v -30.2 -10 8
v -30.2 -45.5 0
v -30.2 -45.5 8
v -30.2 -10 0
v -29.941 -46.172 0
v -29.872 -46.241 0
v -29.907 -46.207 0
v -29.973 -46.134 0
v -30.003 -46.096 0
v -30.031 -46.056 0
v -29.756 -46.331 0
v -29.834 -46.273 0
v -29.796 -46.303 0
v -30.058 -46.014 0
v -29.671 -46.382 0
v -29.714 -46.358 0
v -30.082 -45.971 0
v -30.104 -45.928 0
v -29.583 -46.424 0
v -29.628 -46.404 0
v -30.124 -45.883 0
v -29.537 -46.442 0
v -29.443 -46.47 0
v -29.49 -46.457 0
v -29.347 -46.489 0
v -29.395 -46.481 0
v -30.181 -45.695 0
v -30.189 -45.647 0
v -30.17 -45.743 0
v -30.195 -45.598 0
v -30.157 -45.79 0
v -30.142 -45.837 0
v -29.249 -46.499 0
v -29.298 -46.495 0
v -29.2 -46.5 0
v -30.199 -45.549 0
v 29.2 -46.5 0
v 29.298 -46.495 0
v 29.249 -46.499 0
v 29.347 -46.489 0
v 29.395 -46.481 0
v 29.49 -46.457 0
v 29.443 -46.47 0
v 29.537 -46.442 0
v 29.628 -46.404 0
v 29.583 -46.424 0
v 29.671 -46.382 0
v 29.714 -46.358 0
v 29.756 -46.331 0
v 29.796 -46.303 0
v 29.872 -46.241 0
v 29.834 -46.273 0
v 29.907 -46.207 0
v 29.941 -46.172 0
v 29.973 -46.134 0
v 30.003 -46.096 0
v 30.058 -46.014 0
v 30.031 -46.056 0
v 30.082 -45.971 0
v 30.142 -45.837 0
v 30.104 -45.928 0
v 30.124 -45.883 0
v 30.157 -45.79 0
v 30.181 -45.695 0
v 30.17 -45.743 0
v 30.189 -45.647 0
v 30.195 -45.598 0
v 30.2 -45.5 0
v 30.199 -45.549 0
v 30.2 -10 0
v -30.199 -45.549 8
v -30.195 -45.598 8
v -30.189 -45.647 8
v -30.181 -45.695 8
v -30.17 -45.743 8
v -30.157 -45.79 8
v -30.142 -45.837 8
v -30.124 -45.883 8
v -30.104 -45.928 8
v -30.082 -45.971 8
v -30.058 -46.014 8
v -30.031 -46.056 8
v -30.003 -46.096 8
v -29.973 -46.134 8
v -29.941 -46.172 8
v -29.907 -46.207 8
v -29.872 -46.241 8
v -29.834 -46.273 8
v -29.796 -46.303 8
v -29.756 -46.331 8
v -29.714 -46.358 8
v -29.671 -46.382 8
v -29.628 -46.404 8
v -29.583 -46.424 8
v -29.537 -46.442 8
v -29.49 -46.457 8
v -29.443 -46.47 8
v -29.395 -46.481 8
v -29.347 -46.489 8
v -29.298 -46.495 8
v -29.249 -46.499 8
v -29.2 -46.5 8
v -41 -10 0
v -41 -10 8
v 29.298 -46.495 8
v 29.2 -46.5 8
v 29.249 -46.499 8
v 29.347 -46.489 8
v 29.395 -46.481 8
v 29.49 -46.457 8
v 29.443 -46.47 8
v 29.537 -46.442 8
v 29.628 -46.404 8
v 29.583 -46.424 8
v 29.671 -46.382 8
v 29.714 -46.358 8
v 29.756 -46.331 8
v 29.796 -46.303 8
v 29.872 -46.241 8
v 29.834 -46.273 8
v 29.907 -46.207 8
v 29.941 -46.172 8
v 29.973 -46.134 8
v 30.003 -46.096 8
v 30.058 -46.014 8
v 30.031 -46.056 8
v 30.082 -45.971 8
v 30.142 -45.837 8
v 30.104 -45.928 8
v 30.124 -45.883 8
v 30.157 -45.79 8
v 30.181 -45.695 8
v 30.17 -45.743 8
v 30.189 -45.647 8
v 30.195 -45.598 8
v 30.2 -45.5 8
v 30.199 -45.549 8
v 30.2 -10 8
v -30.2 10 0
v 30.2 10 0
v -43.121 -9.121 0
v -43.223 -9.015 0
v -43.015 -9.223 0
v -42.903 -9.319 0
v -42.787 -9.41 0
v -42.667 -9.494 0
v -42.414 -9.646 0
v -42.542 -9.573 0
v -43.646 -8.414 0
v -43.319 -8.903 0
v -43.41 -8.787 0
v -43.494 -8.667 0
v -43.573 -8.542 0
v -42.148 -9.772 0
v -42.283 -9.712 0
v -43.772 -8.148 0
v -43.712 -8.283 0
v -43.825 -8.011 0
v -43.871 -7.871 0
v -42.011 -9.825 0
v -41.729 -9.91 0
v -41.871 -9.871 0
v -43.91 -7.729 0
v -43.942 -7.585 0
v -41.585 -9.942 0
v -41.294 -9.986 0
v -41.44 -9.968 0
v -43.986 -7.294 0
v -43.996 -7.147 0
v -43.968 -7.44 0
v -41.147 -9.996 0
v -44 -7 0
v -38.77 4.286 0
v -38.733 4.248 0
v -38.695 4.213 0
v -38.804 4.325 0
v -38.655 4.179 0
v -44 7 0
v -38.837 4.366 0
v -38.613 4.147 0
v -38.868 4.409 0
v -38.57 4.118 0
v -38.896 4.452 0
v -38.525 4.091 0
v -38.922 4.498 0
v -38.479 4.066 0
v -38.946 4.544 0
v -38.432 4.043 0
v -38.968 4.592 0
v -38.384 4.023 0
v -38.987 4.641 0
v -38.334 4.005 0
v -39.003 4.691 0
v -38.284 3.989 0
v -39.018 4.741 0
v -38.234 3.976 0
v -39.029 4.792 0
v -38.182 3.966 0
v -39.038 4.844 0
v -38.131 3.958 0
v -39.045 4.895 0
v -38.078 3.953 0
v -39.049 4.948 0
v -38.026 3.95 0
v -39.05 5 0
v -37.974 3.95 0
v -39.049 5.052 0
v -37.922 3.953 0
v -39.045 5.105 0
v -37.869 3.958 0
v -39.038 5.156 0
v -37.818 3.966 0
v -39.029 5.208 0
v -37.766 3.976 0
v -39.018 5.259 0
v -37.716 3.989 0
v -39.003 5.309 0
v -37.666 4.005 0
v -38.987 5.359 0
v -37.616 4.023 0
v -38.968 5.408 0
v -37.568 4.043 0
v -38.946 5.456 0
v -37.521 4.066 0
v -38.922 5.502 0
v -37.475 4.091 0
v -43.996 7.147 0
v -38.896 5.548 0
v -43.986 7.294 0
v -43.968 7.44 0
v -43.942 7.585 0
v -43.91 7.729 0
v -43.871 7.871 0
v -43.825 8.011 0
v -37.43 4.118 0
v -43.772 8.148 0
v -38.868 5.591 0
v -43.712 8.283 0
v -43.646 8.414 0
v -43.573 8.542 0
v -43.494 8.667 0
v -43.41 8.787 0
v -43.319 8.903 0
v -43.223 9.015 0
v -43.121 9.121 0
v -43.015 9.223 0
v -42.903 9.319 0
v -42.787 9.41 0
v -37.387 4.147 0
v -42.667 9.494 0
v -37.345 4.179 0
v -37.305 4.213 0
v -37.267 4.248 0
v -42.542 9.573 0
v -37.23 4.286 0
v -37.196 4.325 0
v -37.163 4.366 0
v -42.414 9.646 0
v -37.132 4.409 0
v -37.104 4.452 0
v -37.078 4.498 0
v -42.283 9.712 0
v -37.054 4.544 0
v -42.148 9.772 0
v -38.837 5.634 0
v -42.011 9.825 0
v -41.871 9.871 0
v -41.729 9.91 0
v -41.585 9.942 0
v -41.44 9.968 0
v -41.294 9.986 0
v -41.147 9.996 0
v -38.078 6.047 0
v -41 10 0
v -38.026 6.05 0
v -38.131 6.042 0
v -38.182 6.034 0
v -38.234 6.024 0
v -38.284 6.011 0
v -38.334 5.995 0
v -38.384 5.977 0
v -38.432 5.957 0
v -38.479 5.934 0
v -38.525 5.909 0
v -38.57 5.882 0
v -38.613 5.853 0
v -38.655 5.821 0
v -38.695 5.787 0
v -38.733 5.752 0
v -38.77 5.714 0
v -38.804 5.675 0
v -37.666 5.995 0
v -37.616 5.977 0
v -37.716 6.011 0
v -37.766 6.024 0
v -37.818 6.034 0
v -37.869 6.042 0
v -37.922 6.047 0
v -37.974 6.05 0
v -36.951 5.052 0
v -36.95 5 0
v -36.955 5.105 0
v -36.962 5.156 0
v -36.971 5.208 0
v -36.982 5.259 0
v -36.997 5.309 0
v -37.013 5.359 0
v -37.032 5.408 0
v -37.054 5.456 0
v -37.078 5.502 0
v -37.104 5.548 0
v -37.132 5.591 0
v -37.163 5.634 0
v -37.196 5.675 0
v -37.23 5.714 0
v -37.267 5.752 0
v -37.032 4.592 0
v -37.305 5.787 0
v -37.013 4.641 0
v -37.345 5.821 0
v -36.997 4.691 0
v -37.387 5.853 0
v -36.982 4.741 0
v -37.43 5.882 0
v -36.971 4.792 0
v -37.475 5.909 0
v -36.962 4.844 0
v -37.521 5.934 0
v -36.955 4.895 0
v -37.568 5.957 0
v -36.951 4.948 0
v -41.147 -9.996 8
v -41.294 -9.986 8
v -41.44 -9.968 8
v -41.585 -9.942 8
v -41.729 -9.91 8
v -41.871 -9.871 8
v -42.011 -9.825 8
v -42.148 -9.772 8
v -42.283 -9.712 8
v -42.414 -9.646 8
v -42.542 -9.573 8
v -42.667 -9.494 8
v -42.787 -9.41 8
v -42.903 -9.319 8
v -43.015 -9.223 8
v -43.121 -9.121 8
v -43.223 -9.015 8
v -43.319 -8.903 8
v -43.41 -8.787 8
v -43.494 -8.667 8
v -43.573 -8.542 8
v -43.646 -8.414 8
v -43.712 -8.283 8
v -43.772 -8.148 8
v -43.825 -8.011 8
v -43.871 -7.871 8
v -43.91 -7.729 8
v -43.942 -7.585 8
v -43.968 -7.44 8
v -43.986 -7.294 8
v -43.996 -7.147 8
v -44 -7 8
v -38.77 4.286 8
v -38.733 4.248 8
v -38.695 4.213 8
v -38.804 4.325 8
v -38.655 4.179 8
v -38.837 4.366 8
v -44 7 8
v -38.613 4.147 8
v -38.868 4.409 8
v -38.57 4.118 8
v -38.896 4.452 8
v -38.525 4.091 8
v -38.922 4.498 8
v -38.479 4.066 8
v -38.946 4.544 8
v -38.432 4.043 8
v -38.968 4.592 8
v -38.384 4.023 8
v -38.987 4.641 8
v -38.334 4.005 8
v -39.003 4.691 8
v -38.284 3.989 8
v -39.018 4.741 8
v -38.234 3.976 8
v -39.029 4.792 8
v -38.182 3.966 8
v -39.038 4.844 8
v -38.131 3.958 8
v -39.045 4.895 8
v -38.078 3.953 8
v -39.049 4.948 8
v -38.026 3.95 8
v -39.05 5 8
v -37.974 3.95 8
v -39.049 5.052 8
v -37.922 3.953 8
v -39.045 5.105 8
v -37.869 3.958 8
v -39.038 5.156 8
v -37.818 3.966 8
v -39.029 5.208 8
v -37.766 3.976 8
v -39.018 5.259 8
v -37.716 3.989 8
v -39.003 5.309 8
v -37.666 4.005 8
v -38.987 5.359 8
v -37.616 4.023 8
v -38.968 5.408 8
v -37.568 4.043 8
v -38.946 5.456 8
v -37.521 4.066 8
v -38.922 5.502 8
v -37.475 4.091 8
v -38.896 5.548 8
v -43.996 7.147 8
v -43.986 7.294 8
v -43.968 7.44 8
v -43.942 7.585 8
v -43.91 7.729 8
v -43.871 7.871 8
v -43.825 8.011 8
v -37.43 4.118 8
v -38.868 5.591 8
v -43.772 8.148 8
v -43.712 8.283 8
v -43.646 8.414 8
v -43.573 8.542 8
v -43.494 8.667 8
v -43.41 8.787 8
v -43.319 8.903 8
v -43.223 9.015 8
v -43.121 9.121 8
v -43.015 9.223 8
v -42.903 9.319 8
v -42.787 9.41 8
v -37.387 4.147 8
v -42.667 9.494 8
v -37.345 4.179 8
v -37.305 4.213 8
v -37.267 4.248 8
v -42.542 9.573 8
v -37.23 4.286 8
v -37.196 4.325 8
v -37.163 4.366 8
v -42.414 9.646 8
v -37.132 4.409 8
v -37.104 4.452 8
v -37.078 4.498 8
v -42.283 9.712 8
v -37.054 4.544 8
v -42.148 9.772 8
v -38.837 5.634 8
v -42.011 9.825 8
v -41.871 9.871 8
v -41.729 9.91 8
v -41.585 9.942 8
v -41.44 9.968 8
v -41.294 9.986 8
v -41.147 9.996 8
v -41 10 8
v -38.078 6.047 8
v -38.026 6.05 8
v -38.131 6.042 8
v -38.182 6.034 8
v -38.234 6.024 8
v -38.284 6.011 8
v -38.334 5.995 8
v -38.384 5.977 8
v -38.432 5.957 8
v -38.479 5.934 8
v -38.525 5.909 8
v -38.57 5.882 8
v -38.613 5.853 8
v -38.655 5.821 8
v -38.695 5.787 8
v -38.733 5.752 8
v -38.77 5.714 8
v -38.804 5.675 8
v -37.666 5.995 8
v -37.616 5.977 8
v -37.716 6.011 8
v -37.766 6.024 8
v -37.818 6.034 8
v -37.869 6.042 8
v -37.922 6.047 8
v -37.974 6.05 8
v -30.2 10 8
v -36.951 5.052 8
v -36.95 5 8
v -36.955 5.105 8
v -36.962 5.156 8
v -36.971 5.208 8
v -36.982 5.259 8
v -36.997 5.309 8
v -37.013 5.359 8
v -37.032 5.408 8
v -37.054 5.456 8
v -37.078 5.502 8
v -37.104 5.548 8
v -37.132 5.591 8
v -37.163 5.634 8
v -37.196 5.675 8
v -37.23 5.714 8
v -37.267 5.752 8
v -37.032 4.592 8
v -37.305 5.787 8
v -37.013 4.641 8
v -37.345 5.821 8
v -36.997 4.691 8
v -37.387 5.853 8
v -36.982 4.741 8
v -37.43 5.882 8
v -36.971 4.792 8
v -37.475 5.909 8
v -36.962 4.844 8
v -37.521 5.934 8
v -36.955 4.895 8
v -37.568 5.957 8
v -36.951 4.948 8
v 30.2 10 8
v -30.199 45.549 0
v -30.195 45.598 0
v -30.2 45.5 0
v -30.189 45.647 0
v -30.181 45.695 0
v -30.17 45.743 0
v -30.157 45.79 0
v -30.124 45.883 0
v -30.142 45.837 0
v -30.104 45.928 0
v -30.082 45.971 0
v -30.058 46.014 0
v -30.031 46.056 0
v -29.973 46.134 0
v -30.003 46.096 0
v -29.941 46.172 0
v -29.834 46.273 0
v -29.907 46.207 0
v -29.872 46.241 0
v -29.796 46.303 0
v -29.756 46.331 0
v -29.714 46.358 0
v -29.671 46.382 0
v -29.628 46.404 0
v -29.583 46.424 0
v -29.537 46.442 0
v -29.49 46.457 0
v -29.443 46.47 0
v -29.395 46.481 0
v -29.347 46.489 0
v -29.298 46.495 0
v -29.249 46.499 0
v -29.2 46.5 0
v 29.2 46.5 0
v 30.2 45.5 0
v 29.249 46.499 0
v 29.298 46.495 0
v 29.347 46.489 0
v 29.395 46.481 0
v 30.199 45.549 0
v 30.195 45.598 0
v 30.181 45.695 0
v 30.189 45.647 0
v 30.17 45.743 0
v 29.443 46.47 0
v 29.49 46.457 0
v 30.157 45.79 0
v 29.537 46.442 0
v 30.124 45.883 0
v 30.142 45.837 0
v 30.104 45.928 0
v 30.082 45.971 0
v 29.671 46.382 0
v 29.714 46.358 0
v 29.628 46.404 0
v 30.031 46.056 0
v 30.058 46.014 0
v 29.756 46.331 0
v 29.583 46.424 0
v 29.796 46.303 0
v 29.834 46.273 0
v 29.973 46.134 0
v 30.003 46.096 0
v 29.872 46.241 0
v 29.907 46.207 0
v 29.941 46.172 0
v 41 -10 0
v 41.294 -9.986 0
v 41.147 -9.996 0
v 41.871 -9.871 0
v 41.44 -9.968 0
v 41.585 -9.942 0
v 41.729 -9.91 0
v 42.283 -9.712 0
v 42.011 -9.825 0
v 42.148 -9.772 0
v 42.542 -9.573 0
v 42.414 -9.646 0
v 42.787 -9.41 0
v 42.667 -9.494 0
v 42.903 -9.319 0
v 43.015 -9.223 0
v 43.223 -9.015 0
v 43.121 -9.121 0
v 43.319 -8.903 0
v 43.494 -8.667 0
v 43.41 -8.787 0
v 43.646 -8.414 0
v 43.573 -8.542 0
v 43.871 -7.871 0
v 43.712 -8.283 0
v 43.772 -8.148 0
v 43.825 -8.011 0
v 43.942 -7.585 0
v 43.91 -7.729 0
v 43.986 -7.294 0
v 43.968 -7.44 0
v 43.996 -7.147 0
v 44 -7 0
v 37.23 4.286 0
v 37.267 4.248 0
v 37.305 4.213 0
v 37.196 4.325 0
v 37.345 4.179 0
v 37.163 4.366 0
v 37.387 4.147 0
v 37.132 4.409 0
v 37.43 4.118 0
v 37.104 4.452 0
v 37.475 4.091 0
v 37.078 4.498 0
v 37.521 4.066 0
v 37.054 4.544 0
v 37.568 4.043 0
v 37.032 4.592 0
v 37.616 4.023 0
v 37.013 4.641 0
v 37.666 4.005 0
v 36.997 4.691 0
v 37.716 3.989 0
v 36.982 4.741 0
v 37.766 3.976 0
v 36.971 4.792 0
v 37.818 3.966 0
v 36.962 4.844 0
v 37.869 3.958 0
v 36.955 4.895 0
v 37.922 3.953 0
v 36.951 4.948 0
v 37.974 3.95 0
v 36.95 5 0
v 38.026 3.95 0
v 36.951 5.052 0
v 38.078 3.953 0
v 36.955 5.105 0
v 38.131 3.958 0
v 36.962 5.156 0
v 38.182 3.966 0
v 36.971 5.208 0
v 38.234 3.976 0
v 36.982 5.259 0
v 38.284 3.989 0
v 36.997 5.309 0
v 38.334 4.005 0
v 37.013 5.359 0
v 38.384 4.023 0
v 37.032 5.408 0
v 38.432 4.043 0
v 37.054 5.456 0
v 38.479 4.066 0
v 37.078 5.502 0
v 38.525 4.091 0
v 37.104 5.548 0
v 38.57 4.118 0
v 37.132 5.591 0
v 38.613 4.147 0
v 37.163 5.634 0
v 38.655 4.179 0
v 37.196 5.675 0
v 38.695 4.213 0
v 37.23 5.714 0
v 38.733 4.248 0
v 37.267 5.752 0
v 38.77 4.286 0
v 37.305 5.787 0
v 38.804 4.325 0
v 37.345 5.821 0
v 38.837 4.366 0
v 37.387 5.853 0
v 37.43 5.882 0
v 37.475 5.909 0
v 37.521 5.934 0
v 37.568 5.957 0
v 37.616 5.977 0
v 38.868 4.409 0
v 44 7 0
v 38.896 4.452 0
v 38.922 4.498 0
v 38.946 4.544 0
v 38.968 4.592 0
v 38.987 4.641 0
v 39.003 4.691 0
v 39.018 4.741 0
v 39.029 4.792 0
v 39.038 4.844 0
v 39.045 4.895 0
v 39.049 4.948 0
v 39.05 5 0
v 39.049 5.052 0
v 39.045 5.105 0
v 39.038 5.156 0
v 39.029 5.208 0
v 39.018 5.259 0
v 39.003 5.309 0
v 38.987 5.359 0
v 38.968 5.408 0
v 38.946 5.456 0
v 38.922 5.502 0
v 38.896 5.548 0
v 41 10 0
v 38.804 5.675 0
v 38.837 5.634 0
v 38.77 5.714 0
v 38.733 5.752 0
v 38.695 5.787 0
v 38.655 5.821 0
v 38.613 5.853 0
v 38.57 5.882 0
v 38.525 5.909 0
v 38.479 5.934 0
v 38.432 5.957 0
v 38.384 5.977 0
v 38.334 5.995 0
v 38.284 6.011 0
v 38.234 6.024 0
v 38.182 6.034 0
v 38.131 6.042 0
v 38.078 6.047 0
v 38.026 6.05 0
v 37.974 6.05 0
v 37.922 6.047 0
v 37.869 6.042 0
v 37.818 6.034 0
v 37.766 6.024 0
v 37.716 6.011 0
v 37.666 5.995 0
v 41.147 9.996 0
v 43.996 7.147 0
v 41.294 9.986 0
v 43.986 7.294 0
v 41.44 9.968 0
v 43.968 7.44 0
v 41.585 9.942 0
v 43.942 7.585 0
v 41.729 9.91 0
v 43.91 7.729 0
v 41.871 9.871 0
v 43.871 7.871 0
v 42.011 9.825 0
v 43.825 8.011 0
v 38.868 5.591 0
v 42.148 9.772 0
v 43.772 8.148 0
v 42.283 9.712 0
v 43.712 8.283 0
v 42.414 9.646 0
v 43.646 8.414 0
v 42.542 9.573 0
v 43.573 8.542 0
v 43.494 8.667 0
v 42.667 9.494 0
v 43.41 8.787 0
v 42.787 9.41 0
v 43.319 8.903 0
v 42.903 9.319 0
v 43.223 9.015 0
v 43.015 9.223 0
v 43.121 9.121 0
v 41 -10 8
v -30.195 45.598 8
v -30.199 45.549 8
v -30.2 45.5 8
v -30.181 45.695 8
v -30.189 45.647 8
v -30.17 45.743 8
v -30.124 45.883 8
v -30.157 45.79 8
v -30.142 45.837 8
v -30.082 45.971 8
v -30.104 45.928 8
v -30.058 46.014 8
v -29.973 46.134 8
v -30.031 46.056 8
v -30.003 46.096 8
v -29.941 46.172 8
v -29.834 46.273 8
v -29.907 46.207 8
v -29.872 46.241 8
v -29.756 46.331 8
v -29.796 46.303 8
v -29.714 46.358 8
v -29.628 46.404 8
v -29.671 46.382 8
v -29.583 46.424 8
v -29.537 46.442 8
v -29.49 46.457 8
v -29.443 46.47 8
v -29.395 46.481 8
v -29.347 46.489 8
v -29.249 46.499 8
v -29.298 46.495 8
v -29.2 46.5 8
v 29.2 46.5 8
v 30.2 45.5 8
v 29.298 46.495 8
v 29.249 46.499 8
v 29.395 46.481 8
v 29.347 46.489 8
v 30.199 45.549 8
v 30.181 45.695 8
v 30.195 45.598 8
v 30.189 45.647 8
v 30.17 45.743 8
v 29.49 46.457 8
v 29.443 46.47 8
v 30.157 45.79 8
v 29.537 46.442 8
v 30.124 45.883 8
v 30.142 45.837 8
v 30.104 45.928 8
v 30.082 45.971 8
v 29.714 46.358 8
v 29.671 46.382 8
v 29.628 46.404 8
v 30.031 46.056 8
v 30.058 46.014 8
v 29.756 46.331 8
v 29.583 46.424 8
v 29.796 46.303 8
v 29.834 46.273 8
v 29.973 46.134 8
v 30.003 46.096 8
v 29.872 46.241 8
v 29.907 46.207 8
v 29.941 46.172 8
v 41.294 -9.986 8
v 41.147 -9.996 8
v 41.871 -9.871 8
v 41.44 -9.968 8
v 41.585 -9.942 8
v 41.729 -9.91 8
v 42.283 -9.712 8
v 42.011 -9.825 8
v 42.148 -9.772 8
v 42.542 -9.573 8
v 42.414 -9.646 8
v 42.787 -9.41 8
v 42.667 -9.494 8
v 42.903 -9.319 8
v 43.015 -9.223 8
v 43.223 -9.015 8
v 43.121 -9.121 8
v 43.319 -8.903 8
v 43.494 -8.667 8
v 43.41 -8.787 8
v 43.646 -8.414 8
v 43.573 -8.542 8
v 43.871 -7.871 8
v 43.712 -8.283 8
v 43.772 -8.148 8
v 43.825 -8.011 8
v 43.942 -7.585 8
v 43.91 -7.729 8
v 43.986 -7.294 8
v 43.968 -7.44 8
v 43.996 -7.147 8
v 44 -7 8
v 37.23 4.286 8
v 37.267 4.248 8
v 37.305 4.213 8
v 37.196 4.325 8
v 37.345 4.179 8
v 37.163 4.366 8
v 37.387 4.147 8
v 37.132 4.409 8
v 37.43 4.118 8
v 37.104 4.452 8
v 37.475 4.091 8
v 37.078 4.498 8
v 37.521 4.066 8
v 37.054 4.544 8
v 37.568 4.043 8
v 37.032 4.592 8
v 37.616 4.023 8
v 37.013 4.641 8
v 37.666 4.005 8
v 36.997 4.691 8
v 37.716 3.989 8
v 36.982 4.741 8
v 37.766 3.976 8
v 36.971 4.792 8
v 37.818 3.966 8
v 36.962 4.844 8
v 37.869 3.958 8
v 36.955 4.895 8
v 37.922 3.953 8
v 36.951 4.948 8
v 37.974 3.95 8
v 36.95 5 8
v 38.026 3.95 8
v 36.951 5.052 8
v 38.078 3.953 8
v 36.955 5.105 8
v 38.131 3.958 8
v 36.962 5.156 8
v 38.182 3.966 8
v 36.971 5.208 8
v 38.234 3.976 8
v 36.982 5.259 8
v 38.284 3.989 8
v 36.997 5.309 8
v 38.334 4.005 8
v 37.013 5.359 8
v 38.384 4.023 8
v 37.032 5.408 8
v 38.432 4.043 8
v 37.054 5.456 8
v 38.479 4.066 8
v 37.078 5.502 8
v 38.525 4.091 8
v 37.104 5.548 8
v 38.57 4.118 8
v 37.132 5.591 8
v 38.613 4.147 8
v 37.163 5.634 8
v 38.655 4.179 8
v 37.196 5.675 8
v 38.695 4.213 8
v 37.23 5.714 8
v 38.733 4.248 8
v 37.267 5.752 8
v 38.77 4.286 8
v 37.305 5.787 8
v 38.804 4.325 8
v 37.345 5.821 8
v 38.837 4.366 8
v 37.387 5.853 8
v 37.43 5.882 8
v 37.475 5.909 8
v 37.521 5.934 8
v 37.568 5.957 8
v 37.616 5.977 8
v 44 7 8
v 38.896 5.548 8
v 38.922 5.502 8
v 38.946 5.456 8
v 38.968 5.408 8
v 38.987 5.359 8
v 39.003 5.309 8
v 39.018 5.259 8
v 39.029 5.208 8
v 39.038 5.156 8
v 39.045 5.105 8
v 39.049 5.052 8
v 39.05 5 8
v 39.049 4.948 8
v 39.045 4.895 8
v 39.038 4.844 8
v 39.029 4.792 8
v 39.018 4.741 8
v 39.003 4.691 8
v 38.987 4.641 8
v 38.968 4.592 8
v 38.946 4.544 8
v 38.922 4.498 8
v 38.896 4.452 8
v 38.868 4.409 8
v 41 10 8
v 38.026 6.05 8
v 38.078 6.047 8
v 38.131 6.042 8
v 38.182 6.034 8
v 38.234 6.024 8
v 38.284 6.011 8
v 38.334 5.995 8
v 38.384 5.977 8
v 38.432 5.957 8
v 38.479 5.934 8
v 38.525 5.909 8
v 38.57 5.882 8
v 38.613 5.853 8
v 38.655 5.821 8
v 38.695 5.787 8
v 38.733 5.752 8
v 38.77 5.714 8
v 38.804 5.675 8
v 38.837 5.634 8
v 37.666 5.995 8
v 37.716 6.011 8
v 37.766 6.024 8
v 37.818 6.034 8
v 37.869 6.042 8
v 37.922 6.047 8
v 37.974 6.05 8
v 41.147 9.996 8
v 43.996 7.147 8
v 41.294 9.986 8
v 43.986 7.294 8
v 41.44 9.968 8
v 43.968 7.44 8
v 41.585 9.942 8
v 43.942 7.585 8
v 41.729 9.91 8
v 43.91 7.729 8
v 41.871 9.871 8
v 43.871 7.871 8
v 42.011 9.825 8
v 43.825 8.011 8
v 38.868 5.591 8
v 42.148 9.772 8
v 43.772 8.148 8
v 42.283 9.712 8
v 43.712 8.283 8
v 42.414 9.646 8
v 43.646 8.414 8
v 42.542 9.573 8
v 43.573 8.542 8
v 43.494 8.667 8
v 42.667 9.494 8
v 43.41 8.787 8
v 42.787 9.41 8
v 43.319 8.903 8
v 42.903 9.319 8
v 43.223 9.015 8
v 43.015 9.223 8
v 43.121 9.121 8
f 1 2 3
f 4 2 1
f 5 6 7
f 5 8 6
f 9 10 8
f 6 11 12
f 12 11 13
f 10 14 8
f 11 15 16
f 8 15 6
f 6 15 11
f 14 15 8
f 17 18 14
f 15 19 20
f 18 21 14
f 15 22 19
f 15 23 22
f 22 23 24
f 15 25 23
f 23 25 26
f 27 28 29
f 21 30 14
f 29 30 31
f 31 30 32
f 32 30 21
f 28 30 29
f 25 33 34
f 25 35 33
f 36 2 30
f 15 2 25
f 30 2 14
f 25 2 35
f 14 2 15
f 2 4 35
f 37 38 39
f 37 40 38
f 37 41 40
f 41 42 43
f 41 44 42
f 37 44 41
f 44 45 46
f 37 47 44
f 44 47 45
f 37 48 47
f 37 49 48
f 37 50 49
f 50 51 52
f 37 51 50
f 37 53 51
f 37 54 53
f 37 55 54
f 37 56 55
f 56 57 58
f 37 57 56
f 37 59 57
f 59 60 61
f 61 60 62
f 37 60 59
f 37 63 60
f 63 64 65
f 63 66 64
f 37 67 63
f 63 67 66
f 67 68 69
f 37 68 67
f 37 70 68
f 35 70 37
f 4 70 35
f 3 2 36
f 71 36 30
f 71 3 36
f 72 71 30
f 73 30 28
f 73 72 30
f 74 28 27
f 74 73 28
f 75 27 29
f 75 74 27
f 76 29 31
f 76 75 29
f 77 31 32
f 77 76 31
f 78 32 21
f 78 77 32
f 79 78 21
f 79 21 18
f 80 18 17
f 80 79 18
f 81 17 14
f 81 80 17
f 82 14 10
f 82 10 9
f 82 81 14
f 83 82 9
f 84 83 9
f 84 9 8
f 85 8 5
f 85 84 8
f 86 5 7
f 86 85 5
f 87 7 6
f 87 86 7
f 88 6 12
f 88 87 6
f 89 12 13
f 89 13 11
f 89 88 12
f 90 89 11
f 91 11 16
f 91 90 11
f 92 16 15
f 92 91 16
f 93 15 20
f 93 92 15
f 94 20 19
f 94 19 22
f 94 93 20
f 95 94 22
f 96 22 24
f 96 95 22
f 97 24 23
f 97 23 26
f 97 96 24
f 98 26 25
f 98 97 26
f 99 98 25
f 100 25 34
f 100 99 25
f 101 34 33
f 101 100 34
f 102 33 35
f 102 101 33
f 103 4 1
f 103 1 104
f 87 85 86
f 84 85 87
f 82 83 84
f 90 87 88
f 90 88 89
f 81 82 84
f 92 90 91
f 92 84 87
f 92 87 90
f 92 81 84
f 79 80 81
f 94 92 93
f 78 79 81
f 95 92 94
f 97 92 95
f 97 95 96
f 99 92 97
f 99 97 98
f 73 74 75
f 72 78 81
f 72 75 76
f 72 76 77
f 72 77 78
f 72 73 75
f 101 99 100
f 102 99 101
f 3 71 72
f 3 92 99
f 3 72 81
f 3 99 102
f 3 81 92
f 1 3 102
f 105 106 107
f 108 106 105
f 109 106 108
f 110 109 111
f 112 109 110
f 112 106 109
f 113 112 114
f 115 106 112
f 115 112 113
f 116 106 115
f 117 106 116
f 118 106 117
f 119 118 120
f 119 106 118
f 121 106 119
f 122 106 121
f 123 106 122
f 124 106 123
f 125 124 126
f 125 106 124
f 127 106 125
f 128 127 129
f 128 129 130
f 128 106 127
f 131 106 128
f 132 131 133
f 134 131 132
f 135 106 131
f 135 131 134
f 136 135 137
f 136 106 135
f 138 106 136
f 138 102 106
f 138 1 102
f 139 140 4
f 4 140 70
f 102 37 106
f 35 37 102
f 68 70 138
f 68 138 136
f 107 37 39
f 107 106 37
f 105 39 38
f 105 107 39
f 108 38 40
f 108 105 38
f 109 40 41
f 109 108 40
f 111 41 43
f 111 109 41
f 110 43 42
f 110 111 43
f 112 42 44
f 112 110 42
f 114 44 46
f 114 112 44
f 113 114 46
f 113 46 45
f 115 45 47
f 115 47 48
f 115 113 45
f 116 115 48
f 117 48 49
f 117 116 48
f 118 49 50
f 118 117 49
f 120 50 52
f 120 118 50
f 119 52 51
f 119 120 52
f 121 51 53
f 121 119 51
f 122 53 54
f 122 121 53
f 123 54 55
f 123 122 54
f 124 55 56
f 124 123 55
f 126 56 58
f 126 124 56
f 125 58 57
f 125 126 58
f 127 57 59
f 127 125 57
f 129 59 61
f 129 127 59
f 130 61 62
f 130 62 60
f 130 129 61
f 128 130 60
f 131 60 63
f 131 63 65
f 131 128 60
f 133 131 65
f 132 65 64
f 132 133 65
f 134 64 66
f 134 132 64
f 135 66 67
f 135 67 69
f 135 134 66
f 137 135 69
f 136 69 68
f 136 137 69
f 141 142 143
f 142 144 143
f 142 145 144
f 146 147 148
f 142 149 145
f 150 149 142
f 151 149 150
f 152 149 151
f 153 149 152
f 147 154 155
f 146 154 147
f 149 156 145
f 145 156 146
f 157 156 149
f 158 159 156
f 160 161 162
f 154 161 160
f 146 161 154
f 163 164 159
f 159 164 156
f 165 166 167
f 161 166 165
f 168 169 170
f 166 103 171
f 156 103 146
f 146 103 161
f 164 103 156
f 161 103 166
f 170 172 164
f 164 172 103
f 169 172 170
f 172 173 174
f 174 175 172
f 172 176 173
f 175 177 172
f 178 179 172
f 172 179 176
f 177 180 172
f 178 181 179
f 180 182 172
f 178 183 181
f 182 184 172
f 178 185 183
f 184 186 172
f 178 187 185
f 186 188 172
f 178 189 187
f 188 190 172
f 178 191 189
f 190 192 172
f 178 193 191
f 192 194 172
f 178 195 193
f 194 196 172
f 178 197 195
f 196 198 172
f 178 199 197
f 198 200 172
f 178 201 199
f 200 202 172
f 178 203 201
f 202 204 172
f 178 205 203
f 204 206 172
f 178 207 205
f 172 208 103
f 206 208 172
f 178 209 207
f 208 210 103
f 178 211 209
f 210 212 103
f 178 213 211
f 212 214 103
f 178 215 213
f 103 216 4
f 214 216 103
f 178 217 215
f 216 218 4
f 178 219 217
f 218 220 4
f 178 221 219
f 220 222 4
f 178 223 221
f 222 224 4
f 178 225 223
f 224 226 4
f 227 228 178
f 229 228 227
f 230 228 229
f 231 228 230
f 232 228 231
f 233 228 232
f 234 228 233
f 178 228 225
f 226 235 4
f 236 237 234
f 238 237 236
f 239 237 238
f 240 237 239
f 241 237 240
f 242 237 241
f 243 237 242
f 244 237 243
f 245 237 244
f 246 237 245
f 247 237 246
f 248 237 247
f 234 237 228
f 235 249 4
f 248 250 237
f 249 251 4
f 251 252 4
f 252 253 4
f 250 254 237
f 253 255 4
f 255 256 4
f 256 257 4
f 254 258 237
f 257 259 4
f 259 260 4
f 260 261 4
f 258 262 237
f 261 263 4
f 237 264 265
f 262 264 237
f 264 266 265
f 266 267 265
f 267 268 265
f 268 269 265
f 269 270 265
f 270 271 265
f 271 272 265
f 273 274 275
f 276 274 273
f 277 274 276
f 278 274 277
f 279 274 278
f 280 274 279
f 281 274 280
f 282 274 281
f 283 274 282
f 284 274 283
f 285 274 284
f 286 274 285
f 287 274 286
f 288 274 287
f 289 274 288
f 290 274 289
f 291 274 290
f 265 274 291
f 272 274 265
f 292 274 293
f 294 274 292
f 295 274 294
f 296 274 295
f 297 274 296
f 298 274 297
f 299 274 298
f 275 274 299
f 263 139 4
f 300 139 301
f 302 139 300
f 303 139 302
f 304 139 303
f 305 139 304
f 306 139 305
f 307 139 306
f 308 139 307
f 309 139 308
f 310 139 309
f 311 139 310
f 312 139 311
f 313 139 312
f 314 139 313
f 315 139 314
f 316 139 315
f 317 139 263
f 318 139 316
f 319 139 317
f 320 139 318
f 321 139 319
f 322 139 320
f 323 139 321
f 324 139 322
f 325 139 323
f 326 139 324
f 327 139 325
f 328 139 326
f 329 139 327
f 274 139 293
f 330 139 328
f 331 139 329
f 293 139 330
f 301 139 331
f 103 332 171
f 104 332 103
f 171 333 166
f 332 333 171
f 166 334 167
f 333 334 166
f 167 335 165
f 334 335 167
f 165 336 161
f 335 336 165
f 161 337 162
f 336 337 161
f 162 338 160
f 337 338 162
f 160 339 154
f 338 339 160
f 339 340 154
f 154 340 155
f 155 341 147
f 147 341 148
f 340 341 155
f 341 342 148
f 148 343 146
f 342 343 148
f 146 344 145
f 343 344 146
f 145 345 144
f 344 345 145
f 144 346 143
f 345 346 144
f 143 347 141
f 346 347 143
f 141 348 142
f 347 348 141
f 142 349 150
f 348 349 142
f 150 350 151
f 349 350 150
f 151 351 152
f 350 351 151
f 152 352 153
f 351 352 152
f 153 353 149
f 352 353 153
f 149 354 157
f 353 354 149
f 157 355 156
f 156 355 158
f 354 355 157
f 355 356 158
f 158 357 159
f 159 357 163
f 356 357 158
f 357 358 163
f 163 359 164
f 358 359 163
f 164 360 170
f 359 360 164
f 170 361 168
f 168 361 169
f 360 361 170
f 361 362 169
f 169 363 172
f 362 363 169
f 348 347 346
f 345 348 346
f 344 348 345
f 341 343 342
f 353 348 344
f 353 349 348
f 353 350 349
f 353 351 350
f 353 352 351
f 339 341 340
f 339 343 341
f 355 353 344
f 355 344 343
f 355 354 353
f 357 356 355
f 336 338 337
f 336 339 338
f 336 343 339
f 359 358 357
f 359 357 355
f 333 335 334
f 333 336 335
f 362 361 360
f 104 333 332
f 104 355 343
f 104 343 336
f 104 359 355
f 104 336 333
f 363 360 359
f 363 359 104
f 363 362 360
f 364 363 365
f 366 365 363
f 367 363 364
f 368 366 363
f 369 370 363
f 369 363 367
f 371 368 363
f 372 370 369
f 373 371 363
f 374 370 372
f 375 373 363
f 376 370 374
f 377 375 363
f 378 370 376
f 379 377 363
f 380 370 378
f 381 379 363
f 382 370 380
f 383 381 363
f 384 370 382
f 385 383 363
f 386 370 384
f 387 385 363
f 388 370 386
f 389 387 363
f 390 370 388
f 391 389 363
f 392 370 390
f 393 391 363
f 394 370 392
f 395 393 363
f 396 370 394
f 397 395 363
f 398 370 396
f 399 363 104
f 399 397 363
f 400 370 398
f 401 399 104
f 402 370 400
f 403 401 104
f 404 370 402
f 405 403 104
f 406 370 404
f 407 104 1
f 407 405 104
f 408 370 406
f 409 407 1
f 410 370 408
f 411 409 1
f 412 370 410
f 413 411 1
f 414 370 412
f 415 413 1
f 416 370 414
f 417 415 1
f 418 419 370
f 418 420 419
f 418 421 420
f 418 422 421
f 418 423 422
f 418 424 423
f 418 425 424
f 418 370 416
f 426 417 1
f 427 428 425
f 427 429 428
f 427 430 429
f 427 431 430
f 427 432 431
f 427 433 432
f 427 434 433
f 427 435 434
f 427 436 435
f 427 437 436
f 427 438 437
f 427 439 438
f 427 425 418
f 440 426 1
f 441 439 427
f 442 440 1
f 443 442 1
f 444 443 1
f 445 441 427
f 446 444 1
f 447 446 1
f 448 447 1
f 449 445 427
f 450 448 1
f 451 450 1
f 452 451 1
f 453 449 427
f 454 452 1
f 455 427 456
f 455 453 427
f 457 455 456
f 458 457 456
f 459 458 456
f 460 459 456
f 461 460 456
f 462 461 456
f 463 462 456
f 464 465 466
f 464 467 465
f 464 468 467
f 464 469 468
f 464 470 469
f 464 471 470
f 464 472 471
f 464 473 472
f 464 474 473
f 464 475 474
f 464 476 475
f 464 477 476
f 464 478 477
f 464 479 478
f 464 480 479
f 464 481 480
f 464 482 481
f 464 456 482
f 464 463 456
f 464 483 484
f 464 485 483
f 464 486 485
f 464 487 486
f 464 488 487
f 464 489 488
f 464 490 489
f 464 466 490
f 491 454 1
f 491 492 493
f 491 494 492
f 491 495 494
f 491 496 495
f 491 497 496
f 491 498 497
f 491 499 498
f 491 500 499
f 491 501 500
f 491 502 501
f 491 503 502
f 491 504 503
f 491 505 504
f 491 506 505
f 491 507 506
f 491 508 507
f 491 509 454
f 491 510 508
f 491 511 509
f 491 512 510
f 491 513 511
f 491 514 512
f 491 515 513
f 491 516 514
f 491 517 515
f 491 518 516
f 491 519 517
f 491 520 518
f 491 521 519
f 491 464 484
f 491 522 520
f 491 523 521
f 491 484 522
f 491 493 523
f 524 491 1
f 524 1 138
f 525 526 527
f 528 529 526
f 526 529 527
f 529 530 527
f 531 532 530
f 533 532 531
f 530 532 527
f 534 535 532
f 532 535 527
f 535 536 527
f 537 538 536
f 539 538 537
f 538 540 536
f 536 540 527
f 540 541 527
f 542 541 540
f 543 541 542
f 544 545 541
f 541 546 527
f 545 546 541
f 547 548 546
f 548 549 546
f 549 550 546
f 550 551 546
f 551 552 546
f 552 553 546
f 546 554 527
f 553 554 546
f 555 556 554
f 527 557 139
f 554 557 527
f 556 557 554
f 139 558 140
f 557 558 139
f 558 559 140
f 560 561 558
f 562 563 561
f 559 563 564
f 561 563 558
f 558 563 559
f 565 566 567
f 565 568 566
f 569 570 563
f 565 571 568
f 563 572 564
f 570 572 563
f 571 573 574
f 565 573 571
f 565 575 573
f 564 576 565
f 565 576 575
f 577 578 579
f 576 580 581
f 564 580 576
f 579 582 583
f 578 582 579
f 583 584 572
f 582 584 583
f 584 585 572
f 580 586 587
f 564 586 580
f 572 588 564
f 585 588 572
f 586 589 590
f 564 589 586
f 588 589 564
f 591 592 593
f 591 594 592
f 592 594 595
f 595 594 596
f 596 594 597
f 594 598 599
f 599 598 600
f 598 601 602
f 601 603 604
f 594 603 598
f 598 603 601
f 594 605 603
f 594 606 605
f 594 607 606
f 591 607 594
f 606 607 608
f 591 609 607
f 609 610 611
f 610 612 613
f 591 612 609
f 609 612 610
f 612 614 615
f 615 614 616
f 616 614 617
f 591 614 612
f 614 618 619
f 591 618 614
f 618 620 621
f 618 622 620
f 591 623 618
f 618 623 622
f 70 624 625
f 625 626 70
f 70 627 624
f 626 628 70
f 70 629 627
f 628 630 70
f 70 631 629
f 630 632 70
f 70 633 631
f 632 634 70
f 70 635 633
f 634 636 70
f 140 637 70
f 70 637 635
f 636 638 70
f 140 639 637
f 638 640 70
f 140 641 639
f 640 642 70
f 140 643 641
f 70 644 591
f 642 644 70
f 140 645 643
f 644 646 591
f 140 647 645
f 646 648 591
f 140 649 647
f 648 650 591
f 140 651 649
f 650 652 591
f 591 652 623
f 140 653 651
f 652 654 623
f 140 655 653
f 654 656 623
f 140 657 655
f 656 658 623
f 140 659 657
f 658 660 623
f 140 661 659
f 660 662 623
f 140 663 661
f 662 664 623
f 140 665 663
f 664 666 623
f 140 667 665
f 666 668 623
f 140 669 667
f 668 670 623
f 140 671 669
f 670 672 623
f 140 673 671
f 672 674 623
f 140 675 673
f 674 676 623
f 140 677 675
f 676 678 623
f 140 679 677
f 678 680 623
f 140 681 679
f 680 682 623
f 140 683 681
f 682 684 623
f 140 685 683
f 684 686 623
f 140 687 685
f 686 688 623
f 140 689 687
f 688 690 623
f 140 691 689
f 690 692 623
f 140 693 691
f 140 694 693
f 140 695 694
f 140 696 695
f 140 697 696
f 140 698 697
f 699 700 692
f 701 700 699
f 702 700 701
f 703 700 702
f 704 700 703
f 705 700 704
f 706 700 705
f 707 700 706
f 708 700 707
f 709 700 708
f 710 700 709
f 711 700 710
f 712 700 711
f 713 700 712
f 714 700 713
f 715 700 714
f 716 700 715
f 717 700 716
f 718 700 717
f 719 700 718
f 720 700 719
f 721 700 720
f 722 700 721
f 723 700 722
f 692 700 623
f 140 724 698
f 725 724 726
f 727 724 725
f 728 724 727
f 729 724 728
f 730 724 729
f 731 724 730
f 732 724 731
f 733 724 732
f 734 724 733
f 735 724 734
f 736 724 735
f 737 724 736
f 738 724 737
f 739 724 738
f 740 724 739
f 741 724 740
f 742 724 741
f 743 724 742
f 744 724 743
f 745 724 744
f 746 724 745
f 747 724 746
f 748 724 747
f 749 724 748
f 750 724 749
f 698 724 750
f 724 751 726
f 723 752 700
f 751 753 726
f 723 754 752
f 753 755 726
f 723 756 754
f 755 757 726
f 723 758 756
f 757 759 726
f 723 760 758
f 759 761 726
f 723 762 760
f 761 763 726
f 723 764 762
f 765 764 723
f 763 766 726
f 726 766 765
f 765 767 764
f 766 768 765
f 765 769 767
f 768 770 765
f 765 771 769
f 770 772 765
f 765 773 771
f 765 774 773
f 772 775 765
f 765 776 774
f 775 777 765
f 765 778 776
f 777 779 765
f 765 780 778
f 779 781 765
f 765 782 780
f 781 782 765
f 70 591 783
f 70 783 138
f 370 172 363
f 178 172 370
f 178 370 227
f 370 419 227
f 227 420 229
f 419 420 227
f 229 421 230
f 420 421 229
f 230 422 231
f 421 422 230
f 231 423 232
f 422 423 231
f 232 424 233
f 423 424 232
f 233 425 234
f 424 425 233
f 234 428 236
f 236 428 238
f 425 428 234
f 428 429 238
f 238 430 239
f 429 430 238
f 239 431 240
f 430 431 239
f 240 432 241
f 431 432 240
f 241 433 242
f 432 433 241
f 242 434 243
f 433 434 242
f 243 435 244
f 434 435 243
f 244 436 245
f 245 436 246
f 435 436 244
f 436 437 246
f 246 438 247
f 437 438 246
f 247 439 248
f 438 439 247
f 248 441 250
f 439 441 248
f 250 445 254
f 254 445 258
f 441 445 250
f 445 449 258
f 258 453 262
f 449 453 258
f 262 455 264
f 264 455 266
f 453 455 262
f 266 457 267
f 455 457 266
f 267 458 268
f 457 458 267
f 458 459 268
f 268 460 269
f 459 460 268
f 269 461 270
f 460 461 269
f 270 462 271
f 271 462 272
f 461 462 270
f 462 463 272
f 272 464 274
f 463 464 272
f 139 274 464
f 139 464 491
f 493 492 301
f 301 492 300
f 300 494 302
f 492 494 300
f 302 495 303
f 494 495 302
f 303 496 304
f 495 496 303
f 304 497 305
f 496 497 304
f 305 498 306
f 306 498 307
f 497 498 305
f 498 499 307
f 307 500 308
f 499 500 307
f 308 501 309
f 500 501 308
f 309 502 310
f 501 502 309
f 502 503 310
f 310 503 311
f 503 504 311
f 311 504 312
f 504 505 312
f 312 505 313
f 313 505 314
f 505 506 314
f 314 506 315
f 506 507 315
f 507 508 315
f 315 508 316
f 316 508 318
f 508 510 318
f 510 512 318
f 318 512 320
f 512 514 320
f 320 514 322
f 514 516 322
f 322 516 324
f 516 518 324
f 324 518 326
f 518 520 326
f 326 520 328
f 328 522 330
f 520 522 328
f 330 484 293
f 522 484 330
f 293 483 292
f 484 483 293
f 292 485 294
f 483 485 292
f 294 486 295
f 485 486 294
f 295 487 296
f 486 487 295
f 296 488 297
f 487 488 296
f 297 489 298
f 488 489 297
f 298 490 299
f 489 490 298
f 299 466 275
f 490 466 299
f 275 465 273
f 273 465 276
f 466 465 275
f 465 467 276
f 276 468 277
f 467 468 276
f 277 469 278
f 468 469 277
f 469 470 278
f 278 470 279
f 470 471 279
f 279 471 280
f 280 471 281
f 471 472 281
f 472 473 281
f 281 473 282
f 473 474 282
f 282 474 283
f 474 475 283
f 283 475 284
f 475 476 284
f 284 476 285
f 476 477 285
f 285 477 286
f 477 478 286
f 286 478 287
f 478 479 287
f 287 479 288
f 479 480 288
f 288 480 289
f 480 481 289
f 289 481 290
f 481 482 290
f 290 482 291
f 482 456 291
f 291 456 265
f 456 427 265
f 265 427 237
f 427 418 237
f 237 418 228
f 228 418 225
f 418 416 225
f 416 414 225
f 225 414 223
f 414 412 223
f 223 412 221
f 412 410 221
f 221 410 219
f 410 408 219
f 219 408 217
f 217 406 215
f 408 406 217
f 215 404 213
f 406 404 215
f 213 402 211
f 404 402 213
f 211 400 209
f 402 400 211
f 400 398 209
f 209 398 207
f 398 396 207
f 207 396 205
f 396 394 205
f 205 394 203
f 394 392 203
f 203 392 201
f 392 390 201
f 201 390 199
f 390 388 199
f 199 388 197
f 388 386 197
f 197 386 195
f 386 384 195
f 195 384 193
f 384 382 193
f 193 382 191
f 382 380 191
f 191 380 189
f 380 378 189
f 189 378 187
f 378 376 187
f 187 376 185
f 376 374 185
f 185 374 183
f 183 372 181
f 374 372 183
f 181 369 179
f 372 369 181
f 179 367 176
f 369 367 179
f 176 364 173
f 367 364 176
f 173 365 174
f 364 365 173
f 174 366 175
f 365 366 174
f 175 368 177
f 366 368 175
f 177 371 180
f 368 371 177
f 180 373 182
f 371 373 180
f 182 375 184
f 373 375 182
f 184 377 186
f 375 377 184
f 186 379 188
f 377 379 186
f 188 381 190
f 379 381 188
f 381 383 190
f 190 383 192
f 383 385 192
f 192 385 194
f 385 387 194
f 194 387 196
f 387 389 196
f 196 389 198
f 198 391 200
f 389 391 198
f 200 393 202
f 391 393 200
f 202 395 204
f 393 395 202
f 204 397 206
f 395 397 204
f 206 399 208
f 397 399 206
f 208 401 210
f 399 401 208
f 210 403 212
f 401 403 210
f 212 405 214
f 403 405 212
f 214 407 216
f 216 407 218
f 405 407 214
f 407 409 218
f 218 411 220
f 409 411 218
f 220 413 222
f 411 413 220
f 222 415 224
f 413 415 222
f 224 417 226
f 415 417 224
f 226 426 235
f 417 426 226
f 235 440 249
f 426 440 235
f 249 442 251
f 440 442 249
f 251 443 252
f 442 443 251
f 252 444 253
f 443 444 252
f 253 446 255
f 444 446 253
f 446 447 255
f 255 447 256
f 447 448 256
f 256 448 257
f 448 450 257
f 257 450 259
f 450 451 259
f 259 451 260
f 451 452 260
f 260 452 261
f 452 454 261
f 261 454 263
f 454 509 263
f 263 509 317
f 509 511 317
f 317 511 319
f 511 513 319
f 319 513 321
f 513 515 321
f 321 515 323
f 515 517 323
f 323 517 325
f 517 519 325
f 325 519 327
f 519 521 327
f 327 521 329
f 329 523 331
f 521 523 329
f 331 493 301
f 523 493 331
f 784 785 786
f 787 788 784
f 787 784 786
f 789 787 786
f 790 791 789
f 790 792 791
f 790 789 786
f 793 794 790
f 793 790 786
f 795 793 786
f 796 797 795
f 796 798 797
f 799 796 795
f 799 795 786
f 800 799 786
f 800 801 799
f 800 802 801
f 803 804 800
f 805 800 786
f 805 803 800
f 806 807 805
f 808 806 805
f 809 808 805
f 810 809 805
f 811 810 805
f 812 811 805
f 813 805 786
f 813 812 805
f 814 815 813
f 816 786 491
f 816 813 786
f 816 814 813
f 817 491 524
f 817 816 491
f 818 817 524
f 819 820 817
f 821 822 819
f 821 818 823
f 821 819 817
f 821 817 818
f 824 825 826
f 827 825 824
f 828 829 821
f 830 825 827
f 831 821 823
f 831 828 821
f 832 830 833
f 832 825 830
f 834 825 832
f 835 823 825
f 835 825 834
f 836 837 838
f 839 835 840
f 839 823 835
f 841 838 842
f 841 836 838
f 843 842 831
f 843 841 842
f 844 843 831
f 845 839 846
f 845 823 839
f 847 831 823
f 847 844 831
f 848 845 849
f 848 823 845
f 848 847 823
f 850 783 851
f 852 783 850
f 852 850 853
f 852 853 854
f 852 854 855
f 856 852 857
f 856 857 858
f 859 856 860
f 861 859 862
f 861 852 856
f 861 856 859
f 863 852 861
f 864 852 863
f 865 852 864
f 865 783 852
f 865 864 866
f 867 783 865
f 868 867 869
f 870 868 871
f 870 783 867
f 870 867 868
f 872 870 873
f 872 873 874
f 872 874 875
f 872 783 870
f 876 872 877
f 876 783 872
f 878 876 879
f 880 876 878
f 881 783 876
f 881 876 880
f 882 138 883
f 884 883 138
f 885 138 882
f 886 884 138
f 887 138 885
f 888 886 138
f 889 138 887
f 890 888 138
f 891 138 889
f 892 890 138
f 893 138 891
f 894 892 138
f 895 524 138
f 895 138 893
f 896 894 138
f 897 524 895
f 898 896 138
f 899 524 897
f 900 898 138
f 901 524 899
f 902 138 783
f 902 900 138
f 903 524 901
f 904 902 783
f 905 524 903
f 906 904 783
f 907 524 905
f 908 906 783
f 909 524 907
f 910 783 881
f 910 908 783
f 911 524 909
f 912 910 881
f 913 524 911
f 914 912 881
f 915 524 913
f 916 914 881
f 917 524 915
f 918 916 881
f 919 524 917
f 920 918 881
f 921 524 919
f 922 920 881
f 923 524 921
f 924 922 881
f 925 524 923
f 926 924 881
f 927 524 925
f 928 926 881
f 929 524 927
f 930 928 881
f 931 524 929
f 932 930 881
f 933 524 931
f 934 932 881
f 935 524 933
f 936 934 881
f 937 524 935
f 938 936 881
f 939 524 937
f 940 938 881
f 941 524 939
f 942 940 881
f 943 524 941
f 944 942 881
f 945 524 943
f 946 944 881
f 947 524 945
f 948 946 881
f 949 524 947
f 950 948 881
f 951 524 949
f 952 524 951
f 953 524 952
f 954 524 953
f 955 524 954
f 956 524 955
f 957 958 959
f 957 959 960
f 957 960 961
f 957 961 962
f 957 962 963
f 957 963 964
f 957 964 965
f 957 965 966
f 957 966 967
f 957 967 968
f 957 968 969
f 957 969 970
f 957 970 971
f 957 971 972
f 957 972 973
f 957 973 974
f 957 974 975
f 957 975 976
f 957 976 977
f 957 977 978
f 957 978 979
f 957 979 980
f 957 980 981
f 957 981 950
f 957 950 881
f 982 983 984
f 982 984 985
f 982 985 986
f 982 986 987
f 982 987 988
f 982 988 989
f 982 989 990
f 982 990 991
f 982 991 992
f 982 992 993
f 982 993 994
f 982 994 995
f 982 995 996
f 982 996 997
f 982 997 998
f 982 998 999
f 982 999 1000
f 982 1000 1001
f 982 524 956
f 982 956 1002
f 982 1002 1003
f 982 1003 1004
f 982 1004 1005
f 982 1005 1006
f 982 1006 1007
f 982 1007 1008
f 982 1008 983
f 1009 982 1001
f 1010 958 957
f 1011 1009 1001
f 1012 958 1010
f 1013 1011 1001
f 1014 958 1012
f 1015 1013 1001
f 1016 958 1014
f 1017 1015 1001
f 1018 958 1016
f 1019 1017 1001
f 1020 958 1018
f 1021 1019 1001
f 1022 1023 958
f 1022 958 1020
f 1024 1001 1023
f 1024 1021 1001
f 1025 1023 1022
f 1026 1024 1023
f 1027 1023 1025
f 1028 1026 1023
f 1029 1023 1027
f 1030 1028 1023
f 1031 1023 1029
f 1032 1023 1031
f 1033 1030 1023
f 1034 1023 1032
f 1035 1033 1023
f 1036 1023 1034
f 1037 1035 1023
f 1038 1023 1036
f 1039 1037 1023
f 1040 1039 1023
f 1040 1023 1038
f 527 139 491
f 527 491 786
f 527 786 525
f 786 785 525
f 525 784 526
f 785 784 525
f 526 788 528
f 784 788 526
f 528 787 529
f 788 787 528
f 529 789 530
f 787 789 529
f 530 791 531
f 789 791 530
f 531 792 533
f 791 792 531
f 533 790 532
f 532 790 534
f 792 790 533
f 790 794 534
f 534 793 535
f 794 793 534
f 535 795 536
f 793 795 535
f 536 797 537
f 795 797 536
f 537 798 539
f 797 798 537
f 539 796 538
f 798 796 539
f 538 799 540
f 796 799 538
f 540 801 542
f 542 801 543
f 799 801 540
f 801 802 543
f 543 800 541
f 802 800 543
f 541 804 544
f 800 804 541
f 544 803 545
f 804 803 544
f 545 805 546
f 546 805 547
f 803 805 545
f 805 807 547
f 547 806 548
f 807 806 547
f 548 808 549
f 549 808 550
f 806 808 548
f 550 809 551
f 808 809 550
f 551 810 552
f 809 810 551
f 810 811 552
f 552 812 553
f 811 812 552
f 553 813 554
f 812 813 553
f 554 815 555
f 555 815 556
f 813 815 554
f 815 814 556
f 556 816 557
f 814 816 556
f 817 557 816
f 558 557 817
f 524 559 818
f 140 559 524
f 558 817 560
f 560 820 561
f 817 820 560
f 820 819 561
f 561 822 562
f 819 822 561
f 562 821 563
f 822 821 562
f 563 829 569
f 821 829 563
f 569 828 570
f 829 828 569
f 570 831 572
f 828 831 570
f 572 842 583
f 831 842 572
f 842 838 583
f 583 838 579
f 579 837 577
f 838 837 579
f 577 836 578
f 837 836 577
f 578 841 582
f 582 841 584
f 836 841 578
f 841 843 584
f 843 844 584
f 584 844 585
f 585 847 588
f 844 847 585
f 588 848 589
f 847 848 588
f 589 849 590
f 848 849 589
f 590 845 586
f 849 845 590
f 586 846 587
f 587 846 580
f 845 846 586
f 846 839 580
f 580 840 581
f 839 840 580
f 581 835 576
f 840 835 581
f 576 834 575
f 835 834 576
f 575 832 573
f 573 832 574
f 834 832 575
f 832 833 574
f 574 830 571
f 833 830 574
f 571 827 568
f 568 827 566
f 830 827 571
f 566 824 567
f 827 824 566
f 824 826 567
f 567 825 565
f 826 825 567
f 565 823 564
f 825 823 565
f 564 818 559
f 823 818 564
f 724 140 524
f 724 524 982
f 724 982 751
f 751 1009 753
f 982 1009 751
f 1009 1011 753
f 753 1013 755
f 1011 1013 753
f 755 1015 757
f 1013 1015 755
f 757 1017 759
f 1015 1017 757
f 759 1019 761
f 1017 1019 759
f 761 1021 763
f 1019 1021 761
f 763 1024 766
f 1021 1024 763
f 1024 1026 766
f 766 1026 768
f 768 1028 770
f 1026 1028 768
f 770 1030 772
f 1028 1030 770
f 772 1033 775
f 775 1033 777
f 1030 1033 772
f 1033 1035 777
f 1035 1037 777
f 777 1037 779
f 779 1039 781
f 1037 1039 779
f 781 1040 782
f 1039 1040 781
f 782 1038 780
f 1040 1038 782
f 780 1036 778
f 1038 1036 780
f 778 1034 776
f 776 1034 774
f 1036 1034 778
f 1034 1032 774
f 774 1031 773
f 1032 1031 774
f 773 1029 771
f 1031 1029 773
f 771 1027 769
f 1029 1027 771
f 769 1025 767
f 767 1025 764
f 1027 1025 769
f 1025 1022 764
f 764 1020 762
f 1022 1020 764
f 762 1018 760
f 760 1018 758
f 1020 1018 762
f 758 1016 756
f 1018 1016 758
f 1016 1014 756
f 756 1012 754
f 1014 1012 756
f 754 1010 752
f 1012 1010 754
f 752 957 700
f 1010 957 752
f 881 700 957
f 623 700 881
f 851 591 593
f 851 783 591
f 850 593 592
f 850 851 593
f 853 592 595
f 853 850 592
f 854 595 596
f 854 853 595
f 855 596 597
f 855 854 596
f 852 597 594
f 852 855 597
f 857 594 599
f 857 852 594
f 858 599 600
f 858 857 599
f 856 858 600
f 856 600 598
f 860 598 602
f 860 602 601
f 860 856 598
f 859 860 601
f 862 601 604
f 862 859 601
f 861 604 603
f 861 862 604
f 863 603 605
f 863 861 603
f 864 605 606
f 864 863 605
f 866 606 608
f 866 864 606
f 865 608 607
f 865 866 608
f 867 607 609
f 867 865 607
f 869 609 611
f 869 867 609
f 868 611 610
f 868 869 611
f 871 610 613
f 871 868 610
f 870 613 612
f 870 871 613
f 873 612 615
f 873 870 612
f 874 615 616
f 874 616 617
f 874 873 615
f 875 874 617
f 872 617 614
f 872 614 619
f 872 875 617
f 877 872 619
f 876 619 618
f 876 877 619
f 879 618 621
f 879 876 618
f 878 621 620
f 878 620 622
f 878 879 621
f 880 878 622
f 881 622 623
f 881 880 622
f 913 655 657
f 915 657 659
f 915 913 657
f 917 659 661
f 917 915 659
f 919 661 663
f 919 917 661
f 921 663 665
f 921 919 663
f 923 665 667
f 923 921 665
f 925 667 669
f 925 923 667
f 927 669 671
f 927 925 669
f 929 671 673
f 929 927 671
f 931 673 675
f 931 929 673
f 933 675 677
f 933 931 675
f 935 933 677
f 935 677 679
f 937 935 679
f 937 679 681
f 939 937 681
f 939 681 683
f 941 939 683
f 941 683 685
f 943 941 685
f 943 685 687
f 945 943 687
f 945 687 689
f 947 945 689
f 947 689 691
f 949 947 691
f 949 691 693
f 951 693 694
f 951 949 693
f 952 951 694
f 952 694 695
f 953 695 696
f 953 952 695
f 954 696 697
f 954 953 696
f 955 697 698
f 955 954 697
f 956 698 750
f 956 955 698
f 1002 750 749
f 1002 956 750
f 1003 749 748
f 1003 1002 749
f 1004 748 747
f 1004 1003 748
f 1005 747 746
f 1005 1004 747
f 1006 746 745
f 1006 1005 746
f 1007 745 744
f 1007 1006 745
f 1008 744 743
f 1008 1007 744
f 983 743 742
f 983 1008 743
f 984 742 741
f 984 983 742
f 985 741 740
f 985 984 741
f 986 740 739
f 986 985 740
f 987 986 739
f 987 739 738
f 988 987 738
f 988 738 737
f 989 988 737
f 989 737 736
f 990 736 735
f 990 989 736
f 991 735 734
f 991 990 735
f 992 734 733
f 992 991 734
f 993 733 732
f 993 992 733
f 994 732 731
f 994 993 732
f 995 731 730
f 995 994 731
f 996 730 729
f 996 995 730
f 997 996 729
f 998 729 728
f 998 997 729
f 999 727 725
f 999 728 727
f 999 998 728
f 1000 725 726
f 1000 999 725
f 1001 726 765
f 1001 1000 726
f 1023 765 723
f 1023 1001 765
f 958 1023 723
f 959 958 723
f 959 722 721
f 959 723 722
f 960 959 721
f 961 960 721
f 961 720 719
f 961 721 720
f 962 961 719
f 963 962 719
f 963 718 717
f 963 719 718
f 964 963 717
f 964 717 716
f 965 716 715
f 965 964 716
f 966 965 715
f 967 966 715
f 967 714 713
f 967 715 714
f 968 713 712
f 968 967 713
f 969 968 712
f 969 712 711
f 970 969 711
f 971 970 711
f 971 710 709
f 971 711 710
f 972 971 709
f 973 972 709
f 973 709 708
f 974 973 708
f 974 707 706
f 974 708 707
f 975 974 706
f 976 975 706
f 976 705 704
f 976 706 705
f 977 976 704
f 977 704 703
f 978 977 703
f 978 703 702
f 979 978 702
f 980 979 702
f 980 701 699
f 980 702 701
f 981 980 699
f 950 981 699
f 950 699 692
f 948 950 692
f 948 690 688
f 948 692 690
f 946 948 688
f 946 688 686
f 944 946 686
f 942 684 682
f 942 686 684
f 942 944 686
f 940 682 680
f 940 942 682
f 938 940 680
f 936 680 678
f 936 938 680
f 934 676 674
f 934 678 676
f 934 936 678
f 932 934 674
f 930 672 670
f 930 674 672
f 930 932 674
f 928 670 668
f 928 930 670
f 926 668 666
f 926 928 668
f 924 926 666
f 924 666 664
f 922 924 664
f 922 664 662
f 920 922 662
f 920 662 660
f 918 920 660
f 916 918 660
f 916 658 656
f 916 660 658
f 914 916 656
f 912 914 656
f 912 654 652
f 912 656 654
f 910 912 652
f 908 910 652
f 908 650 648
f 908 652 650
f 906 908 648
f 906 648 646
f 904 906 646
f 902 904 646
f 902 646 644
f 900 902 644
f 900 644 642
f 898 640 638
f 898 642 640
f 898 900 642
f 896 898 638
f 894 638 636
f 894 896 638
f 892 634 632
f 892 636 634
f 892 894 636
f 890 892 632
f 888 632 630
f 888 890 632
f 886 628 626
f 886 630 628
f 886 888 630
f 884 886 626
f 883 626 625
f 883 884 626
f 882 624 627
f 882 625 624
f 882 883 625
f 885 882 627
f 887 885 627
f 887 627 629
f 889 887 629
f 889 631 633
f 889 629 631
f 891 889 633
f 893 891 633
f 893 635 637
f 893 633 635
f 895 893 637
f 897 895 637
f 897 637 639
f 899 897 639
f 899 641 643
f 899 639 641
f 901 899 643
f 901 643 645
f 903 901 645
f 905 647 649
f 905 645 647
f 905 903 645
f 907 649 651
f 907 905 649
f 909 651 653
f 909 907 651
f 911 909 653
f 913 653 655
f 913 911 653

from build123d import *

# Parameters (mm, degrees)
SKETCH_W     = 60.4
SKETCH_H     = 93
PAD_DEPTH    = 8
SKETCH001_W  = 88
SKETCH001_H  = 20
PAD001_DEPTH = 8
SKETCH002_R  = 1.05
POCKET_DEPTH = 264.570679
FILLET_R     = 3
FILLET001_R  = 1


with BuildPart() as part:
    # Sketch → Pad (new body)
    with BuildSketch(Plane.XY):
        Rectangle(SKETCH_W, SKETCH_H)
    extrude(amount=PAD_DEPTH)

    # Sketch001 → Pad001 (join)
    with BuildSketch(Plane.XY):
        Rectangle(SKETCH001_W, SKETCH001_H)
    extrude(amount=PAD001_DEPTH)

    # Sketch002 (on Face10 of Pad001) → Pocket (cut, through all)
    with BuildSketch(Plane.XY.offset(8)):
        with Locations((-38, 5)):
            Circle(SKETCH002_R)
    pocket = extrude(amount=-POCKET_DEPTH, mode=Mode.SUBTRACT)

    # Fillet
    fillet_edges = [part.edges().sort_by_distance(p)[0] for p in [
        (-44, -10, 4),
        (44, -10, 4),
        (44, 10, 4),
        (-44, 10, 4),
    ]]
    fillet(fillet_edges, radius=FILLET_R)

    # Mirrored: Pocket across Sketch002 V_Axis
    add(pocket.mirror(Plane(origin=(0, 0, 8), x_dir=(0, 0, 1), z_dir=(1, 0, 0))), mode=Mode.SUBTRACT)

    # Fillet001
    fillet001_edges = [part.edges().sort_by_distance(p)[0] for p in [
        (-30.2, -46.5, 4),
        (30.2, -46.5, 4),
        (30.2, 46.5, 4),
        (-30.2, 46.5, 4),
    ]]
    fillet(fillet001_edges, radius=FILLET001_R)


solid = part.part
